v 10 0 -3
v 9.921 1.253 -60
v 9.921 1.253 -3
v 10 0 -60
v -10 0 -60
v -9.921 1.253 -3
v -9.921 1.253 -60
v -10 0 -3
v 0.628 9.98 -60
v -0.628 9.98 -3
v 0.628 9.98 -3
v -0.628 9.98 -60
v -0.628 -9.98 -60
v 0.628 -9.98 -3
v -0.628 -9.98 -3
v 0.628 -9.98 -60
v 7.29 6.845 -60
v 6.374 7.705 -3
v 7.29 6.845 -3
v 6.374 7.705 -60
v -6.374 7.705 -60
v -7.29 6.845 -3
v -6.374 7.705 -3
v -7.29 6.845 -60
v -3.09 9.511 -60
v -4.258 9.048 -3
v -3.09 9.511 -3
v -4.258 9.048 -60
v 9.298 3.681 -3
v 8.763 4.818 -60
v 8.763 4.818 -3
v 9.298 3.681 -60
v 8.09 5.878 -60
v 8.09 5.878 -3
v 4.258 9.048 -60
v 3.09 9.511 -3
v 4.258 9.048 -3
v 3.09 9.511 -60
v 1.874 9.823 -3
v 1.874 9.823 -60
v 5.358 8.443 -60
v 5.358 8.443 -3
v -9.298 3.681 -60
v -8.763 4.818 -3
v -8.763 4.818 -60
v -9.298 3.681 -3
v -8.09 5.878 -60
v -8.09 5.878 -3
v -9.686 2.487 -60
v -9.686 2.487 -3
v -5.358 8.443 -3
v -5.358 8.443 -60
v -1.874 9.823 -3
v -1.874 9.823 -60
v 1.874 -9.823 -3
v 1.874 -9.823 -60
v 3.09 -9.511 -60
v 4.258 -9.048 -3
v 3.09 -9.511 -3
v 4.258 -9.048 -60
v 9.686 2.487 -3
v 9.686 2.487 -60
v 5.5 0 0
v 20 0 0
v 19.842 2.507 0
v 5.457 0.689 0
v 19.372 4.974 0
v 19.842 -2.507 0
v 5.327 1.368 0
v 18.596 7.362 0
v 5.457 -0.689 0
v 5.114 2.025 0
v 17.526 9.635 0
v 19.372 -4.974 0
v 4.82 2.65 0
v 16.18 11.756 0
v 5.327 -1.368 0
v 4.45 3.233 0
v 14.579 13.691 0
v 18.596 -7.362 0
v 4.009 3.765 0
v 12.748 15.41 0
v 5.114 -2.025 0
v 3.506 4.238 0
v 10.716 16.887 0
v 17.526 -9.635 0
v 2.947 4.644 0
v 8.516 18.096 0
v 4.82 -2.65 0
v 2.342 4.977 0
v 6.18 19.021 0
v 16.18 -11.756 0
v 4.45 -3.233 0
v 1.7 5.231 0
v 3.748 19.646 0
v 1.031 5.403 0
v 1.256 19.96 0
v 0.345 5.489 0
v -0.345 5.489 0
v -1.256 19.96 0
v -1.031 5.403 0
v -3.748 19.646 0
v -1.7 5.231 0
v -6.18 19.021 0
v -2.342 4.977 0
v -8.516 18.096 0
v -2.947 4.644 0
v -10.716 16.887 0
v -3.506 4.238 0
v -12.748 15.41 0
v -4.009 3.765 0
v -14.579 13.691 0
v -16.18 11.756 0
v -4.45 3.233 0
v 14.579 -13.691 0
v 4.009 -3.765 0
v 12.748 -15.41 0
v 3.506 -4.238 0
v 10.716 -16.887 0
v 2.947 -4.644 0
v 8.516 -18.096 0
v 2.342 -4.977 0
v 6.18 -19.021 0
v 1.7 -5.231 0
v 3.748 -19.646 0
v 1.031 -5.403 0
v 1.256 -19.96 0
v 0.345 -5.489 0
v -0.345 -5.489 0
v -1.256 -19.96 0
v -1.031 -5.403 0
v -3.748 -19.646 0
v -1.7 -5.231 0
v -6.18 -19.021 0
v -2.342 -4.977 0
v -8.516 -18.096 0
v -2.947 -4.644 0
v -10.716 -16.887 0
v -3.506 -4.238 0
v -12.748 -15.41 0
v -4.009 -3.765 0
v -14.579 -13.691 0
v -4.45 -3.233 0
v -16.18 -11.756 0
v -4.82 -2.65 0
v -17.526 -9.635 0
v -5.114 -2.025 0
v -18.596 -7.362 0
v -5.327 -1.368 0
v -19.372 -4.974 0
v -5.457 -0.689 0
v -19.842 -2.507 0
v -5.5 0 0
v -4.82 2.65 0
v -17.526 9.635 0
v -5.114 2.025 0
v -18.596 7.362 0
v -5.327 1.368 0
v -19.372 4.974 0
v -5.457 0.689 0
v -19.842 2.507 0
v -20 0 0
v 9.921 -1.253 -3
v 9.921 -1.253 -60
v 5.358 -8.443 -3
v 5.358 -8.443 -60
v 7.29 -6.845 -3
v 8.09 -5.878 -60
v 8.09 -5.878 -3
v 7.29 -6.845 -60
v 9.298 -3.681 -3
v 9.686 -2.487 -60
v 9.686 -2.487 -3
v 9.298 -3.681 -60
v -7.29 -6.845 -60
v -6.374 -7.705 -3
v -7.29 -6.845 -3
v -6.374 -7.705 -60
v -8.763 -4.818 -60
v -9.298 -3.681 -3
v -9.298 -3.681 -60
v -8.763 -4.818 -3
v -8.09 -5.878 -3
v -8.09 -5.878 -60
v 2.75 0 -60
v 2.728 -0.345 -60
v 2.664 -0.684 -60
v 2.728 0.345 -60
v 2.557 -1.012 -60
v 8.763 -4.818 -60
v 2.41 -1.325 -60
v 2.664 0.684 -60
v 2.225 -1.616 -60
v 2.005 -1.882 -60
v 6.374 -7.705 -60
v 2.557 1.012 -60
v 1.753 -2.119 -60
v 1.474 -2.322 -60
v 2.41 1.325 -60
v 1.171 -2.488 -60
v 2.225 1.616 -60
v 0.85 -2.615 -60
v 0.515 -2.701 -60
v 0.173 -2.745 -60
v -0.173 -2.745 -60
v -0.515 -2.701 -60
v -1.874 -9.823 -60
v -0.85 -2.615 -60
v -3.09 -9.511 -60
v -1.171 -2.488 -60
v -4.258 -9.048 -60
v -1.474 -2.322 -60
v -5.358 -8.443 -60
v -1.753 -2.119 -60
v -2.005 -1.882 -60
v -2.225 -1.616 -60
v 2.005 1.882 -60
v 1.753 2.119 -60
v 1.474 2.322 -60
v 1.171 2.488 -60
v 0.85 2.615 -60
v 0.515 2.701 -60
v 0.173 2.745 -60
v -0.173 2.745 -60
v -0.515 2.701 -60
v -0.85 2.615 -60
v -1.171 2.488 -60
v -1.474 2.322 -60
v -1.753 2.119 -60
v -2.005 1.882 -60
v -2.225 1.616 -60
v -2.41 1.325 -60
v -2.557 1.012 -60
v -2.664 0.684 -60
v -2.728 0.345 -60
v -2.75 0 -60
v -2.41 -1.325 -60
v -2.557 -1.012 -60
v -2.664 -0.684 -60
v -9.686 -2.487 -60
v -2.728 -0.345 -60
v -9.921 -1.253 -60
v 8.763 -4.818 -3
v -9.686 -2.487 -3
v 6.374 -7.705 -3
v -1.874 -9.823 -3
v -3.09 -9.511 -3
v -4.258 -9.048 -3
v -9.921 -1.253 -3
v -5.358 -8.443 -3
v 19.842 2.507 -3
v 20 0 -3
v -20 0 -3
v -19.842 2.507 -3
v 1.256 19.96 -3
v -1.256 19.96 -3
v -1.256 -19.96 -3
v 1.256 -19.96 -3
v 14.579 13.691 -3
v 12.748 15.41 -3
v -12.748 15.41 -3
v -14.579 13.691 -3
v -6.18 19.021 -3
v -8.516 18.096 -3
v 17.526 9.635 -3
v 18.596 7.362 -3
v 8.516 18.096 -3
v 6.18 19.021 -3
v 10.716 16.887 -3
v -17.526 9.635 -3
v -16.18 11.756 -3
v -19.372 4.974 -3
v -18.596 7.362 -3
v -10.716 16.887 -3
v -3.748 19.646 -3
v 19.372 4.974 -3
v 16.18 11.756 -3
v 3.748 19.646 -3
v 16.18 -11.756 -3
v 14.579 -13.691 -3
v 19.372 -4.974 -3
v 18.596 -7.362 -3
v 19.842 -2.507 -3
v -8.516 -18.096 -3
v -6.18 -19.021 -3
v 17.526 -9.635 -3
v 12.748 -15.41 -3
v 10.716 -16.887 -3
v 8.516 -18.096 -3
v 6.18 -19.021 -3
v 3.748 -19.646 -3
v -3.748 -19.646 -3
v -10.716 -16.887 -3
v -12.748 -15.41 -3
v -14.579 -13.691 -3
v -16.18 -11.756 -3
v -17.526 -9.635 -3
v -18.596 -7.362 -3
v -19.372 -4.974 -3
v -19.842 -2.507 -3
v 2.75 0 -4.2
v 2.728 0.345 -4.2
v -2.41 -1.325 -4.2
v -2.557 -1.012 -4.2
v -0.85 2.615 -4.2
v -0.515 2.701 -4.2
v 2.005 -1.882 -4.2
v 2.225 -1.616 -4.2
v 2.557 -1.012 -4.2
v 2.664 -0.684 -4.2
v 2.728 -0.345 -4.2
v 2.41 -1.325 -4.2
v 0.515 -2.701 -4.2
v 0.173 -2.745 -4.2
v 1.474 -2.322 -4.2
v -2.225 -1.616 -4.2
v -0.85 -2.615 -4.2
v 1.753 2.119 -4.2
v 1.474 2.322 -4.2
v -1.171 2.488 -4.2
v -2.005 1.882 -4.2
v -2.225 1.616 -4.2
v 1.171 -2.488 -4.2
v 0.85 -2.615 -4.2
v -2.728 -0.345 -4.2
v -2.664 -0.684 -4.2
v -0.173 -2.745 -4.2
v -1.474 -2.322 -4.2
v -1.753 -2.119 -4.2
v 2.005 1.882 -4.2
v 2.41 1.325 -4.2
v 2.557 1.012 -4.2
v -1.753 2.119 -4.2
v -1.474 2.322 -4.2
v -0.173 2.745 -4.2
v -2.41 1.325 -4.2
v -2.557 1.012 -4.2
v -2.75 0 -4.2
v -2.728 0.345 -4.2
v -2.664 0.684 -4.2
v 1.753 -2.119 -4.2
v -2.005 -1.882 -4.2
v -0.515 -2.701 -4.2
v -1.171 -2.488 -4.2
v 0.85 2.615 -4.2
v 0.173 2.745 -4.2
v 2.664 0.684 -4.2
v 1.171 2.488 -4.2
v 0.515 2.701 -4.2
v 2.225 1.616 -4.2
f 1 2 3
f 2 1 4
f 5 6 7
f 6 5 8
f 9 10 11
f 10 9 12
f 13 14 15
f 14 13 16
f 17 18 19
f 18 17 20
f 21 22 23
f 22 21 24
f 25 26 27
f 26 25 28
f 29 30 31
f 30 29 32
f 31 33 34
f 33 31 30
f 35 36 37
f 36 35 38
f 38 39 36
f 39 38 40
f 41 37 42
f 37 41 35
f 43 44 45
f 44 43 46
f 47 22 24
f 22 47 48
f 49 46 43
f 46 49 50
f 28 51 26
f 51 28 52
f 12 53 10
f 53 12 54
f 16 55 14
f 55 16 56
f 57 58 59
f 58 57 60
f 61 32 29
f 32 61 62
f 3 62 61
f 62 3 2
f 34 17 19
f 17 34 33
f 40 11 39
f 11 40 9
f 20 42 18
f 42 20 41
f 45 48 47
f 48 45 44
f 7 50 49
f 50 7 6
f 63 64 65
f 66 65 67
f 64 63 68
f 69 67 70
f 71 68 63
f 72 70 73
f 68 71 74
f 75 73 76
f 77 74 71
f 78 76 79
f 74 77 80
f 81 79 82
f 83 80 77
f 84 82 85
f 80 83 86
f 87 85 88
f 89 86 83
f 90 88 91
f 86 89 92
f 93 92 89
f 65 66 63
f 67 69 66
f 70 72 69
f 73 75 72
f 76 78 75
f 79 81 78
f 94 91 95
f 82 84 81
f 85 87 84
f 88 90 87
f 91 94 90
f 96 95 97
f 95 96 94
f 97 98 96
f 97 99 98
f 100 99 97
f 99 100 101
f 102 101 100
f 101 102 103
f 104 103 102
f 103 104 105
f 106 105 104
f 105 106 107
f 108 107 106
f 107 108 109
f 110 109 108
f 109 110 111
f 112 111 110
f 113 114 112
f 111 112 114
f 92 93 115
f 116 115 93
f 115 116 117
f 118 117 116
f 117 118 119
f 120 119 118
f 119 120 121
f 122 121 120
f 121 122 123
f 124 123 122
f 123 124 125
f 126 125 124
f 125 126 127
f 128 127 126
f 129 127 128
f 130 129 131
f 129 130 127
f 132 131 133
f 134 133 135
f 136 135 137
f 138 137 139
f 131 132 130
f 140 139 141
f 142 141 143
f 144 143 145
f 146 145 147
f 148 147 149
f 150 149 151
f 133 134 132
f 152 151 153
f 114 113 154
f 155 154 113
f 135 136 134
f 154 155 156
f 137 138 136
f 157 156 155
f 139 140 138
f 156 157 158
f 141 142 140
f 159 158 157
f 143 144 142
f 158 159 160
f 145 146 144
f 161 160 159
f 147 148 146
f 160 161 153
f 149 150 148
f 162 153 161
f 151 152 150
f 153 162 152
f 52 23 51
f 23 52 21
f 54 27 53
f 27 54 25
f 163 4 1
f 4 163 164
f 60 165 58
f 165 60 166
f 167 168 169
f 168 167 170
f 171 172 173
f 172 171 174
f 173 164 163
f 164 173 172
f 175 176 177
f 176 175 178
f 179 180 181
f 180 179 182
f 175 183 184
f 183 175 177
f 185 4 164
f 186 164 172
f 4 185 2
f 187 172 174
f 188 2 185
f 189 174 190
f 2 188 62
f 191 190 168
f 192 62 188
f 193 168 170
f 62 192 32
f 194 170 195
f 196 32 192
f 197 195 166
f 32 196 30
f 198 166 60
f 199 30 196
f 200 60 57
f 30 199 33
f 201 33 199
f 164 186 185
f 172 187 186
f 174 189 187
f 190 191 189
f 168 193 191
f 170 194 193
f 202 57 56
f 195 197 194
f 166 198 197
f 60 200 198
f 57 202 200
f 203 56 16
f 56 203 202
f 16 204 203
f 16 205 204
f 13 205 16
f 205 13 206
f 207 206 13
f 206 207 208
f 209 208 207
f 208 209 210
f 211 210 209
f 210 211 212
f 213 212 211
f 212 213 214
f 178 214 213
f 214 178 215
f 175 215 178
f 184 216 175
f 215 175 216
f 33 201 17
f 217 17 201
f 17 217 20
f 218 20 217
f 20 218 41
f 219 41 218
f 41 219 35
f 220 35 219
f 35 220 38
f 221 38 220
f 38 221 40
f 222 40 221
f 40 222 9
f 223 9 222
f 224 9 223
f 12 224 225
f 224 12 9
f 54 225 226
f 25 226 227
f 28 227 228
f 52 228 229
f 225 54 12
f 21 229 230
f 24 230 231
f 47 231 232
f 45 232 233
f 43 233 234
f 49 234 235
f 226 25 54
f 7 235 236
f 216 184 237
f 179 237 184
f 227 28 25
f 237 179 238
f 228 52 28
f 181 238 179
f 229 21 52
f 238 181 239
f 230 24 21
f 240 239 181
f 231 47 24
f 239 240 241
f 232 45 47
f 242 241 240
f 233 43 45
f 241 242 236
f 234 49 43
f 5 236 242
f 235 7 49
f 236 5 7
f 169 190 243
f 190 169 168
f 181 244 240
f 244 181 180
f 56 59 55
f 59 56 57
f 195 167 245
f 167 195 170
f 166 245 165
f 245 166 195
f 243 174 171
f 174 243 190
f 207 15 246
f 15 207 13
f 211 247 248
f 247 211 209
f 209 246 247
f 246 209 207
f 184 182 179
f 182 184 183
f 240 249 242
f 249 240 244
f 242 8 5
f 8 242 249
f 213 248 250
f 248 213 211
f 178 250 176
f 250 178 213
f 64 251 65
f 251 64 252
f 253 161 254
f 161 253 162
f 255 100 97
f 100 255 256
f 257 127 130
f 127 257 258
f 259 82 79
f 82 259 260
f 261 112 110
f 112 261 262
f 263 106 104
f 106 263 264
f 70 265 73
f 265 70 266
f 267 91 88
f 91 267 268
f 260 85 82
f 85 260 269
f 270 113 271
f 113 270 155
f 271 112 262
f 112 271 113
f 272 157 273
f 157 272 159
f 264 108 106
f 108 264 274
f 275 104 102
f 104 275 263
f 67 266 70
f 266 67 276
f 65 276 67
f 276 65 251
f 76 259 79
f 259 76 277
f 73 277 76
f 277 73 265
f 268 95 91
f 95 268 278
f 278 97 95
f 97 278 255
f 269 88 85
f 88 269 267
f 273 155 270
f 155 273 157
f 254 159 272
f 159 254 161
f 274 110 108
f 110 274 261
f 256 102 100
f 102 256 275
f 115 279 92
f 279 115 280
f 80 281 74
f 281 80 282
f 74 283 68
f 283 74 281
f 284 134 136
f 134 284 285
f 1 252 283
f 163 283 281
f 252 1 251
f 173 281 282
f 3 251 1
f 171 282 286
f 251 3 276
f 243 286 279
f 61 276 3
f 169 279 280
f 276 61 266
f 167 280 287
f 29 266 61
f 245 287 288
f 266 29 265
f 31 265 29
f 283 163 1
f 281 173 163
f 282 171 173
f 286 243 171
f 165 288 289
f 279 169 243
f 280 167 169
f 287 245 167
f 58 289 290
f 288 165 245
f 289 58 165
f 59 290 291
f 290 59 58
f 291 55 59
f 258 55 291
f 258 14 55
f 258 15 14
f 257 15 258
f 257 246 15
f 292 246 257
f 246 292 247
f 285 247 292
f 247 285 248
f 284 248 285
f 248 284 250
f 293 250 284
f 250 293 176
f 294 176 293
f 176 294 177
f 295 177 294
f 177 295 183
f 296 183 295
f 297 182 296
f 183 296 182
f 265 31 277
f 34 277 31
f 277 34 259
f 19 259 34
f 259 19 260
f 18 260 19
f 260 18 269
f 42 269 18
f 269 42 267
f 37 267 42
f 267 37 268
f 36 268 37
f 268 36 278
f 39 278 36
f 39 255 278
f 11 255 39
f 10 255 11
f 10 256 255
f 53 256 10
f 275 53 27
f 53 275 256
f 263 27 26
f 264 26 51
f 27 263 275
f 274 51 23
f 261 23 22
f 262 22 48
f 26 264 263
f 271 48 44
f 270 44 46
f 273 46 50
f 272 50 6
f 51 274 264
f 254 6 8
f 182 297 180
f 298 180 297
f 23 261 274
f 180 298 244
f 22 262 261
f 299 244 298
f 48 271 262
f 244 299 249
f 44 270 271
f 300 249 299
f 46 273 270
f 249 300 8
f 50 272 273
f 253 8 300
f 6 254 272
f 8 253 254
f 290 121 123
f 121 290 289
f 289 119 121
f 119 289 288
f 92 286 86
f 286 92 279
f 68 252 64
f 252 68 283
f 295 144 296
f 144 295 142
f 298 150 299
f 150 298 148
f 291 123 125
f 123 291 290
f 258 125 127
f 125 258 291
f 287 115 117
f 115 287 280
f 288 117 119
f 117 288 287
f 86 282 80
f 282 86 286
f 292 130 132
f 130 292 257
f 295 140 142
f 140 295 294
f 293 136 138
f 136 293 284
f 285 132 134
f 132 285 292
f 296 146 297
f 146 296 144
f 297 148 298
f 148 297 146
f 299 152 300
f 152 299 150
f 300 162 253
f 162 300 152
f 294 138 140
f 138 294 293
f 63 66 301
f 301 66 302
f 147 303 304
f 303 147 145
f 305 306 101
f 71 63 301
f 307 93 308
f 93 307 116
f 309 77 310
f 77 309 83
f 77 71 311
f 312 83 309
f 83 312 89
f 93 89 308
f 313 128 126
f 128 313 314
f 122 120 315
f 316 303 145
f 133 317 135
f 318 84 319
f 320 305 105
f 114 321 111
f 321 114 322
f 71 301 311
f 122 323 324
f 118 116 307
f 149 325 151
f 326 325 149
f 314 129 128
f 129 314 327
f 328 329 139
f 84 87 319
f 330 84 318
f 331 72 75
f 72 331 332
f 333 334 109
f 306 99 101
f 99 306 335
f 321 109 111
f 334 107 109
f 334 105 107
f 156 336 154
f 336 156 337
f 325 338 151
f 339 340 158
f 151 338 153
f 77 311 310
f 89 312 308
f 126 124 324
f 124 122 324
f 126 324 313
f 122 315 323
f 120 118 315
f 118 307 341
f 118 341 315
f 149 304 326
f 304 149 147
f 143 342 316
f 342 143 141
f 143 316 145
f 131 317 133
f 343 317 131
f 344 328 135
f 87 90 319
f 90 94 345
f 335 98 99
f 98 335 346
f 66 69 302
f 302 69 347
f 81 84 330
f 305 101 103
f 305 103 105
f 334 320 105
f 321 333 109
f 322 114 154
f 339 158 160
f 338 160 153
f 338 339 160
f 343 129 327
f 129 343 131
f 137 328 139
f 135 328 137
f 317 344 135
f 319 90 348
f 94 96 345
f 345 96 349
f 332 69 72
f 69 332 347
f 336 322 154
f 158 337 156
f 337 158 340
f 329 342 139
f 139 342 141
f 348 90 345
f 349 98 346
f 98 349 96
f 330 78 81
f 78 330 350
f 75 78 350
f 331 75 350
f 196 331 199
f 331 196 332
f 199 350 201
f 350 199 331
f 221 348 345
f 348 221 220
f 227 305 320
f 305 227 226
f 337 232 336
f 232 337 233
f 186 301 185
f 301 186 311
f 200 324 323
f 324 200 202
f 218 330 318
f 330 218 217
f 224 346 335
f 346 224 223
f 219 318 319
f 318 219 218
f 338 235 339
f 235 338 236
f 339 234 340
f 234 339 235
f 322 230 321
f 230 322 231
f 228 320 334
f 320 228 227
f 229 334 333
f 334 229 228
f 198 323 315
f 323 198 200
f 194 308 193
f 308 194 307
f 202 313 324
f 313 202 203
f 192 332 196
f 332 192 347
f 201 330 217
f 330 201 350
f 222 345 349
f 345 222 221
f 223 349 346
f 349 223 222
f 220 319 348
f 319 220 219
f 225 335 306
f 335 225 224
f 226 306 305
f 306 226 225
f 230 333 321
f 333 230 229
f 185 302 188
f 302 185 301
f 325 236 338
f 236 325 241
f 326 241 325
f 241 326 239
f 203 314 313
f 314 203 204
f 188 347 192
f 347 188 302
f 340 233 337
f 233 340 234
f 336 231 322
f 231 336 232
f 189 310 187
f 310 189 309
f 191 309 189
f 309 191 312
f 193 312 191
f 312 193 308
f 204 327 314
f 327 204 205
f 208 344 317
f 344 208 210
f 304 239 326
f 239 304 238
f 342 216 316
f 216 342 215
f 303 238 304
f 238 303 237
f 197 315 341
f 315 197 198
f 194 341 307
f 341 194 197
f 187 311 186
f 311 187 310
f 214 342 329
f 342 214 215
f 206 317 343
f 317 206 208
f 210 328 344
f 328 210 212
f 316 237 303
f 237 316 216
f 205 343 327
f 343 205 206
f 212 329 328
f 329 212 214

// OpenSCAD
$fn = 50;


difference() {
	union() {
		translate(v = [0, 0, -60.0000000000]) {
			cylinder(h = 60, r = 10.0000000000);
		}
		translate(v = [0, 0, -3.0000000000]) {
			cylinder(h = 3, r = 20.0000000000);
		}
	}
	union() {
		translate(v = [0, 0, 0]) {
			rotate(a = [0, 0, 0]) {
				difference() {
					union() {
						#translate(v = [0, 0, -60.0000000000]) {
							cylinder(h = 60, r = 2.2500000000);
						}
						#translate(v = [0, 0, -4.2000000000]) {
							cylinder(h = 4.2000000000, r = 10.0000000000, r1 = 2.7500000000, r2 = 5.5000000000);
						}
						#translate(v = [0, 0, -60.0000000000]) {
							cylinder(h = 60, r = 2.7500000000);
						}
						#translate(v = [0, 0, -60.0000000000]) {
							cylinder(h = 60, r = 2.2500000000);
						}
					}
					union();
				}
			}
		}
	}
}
